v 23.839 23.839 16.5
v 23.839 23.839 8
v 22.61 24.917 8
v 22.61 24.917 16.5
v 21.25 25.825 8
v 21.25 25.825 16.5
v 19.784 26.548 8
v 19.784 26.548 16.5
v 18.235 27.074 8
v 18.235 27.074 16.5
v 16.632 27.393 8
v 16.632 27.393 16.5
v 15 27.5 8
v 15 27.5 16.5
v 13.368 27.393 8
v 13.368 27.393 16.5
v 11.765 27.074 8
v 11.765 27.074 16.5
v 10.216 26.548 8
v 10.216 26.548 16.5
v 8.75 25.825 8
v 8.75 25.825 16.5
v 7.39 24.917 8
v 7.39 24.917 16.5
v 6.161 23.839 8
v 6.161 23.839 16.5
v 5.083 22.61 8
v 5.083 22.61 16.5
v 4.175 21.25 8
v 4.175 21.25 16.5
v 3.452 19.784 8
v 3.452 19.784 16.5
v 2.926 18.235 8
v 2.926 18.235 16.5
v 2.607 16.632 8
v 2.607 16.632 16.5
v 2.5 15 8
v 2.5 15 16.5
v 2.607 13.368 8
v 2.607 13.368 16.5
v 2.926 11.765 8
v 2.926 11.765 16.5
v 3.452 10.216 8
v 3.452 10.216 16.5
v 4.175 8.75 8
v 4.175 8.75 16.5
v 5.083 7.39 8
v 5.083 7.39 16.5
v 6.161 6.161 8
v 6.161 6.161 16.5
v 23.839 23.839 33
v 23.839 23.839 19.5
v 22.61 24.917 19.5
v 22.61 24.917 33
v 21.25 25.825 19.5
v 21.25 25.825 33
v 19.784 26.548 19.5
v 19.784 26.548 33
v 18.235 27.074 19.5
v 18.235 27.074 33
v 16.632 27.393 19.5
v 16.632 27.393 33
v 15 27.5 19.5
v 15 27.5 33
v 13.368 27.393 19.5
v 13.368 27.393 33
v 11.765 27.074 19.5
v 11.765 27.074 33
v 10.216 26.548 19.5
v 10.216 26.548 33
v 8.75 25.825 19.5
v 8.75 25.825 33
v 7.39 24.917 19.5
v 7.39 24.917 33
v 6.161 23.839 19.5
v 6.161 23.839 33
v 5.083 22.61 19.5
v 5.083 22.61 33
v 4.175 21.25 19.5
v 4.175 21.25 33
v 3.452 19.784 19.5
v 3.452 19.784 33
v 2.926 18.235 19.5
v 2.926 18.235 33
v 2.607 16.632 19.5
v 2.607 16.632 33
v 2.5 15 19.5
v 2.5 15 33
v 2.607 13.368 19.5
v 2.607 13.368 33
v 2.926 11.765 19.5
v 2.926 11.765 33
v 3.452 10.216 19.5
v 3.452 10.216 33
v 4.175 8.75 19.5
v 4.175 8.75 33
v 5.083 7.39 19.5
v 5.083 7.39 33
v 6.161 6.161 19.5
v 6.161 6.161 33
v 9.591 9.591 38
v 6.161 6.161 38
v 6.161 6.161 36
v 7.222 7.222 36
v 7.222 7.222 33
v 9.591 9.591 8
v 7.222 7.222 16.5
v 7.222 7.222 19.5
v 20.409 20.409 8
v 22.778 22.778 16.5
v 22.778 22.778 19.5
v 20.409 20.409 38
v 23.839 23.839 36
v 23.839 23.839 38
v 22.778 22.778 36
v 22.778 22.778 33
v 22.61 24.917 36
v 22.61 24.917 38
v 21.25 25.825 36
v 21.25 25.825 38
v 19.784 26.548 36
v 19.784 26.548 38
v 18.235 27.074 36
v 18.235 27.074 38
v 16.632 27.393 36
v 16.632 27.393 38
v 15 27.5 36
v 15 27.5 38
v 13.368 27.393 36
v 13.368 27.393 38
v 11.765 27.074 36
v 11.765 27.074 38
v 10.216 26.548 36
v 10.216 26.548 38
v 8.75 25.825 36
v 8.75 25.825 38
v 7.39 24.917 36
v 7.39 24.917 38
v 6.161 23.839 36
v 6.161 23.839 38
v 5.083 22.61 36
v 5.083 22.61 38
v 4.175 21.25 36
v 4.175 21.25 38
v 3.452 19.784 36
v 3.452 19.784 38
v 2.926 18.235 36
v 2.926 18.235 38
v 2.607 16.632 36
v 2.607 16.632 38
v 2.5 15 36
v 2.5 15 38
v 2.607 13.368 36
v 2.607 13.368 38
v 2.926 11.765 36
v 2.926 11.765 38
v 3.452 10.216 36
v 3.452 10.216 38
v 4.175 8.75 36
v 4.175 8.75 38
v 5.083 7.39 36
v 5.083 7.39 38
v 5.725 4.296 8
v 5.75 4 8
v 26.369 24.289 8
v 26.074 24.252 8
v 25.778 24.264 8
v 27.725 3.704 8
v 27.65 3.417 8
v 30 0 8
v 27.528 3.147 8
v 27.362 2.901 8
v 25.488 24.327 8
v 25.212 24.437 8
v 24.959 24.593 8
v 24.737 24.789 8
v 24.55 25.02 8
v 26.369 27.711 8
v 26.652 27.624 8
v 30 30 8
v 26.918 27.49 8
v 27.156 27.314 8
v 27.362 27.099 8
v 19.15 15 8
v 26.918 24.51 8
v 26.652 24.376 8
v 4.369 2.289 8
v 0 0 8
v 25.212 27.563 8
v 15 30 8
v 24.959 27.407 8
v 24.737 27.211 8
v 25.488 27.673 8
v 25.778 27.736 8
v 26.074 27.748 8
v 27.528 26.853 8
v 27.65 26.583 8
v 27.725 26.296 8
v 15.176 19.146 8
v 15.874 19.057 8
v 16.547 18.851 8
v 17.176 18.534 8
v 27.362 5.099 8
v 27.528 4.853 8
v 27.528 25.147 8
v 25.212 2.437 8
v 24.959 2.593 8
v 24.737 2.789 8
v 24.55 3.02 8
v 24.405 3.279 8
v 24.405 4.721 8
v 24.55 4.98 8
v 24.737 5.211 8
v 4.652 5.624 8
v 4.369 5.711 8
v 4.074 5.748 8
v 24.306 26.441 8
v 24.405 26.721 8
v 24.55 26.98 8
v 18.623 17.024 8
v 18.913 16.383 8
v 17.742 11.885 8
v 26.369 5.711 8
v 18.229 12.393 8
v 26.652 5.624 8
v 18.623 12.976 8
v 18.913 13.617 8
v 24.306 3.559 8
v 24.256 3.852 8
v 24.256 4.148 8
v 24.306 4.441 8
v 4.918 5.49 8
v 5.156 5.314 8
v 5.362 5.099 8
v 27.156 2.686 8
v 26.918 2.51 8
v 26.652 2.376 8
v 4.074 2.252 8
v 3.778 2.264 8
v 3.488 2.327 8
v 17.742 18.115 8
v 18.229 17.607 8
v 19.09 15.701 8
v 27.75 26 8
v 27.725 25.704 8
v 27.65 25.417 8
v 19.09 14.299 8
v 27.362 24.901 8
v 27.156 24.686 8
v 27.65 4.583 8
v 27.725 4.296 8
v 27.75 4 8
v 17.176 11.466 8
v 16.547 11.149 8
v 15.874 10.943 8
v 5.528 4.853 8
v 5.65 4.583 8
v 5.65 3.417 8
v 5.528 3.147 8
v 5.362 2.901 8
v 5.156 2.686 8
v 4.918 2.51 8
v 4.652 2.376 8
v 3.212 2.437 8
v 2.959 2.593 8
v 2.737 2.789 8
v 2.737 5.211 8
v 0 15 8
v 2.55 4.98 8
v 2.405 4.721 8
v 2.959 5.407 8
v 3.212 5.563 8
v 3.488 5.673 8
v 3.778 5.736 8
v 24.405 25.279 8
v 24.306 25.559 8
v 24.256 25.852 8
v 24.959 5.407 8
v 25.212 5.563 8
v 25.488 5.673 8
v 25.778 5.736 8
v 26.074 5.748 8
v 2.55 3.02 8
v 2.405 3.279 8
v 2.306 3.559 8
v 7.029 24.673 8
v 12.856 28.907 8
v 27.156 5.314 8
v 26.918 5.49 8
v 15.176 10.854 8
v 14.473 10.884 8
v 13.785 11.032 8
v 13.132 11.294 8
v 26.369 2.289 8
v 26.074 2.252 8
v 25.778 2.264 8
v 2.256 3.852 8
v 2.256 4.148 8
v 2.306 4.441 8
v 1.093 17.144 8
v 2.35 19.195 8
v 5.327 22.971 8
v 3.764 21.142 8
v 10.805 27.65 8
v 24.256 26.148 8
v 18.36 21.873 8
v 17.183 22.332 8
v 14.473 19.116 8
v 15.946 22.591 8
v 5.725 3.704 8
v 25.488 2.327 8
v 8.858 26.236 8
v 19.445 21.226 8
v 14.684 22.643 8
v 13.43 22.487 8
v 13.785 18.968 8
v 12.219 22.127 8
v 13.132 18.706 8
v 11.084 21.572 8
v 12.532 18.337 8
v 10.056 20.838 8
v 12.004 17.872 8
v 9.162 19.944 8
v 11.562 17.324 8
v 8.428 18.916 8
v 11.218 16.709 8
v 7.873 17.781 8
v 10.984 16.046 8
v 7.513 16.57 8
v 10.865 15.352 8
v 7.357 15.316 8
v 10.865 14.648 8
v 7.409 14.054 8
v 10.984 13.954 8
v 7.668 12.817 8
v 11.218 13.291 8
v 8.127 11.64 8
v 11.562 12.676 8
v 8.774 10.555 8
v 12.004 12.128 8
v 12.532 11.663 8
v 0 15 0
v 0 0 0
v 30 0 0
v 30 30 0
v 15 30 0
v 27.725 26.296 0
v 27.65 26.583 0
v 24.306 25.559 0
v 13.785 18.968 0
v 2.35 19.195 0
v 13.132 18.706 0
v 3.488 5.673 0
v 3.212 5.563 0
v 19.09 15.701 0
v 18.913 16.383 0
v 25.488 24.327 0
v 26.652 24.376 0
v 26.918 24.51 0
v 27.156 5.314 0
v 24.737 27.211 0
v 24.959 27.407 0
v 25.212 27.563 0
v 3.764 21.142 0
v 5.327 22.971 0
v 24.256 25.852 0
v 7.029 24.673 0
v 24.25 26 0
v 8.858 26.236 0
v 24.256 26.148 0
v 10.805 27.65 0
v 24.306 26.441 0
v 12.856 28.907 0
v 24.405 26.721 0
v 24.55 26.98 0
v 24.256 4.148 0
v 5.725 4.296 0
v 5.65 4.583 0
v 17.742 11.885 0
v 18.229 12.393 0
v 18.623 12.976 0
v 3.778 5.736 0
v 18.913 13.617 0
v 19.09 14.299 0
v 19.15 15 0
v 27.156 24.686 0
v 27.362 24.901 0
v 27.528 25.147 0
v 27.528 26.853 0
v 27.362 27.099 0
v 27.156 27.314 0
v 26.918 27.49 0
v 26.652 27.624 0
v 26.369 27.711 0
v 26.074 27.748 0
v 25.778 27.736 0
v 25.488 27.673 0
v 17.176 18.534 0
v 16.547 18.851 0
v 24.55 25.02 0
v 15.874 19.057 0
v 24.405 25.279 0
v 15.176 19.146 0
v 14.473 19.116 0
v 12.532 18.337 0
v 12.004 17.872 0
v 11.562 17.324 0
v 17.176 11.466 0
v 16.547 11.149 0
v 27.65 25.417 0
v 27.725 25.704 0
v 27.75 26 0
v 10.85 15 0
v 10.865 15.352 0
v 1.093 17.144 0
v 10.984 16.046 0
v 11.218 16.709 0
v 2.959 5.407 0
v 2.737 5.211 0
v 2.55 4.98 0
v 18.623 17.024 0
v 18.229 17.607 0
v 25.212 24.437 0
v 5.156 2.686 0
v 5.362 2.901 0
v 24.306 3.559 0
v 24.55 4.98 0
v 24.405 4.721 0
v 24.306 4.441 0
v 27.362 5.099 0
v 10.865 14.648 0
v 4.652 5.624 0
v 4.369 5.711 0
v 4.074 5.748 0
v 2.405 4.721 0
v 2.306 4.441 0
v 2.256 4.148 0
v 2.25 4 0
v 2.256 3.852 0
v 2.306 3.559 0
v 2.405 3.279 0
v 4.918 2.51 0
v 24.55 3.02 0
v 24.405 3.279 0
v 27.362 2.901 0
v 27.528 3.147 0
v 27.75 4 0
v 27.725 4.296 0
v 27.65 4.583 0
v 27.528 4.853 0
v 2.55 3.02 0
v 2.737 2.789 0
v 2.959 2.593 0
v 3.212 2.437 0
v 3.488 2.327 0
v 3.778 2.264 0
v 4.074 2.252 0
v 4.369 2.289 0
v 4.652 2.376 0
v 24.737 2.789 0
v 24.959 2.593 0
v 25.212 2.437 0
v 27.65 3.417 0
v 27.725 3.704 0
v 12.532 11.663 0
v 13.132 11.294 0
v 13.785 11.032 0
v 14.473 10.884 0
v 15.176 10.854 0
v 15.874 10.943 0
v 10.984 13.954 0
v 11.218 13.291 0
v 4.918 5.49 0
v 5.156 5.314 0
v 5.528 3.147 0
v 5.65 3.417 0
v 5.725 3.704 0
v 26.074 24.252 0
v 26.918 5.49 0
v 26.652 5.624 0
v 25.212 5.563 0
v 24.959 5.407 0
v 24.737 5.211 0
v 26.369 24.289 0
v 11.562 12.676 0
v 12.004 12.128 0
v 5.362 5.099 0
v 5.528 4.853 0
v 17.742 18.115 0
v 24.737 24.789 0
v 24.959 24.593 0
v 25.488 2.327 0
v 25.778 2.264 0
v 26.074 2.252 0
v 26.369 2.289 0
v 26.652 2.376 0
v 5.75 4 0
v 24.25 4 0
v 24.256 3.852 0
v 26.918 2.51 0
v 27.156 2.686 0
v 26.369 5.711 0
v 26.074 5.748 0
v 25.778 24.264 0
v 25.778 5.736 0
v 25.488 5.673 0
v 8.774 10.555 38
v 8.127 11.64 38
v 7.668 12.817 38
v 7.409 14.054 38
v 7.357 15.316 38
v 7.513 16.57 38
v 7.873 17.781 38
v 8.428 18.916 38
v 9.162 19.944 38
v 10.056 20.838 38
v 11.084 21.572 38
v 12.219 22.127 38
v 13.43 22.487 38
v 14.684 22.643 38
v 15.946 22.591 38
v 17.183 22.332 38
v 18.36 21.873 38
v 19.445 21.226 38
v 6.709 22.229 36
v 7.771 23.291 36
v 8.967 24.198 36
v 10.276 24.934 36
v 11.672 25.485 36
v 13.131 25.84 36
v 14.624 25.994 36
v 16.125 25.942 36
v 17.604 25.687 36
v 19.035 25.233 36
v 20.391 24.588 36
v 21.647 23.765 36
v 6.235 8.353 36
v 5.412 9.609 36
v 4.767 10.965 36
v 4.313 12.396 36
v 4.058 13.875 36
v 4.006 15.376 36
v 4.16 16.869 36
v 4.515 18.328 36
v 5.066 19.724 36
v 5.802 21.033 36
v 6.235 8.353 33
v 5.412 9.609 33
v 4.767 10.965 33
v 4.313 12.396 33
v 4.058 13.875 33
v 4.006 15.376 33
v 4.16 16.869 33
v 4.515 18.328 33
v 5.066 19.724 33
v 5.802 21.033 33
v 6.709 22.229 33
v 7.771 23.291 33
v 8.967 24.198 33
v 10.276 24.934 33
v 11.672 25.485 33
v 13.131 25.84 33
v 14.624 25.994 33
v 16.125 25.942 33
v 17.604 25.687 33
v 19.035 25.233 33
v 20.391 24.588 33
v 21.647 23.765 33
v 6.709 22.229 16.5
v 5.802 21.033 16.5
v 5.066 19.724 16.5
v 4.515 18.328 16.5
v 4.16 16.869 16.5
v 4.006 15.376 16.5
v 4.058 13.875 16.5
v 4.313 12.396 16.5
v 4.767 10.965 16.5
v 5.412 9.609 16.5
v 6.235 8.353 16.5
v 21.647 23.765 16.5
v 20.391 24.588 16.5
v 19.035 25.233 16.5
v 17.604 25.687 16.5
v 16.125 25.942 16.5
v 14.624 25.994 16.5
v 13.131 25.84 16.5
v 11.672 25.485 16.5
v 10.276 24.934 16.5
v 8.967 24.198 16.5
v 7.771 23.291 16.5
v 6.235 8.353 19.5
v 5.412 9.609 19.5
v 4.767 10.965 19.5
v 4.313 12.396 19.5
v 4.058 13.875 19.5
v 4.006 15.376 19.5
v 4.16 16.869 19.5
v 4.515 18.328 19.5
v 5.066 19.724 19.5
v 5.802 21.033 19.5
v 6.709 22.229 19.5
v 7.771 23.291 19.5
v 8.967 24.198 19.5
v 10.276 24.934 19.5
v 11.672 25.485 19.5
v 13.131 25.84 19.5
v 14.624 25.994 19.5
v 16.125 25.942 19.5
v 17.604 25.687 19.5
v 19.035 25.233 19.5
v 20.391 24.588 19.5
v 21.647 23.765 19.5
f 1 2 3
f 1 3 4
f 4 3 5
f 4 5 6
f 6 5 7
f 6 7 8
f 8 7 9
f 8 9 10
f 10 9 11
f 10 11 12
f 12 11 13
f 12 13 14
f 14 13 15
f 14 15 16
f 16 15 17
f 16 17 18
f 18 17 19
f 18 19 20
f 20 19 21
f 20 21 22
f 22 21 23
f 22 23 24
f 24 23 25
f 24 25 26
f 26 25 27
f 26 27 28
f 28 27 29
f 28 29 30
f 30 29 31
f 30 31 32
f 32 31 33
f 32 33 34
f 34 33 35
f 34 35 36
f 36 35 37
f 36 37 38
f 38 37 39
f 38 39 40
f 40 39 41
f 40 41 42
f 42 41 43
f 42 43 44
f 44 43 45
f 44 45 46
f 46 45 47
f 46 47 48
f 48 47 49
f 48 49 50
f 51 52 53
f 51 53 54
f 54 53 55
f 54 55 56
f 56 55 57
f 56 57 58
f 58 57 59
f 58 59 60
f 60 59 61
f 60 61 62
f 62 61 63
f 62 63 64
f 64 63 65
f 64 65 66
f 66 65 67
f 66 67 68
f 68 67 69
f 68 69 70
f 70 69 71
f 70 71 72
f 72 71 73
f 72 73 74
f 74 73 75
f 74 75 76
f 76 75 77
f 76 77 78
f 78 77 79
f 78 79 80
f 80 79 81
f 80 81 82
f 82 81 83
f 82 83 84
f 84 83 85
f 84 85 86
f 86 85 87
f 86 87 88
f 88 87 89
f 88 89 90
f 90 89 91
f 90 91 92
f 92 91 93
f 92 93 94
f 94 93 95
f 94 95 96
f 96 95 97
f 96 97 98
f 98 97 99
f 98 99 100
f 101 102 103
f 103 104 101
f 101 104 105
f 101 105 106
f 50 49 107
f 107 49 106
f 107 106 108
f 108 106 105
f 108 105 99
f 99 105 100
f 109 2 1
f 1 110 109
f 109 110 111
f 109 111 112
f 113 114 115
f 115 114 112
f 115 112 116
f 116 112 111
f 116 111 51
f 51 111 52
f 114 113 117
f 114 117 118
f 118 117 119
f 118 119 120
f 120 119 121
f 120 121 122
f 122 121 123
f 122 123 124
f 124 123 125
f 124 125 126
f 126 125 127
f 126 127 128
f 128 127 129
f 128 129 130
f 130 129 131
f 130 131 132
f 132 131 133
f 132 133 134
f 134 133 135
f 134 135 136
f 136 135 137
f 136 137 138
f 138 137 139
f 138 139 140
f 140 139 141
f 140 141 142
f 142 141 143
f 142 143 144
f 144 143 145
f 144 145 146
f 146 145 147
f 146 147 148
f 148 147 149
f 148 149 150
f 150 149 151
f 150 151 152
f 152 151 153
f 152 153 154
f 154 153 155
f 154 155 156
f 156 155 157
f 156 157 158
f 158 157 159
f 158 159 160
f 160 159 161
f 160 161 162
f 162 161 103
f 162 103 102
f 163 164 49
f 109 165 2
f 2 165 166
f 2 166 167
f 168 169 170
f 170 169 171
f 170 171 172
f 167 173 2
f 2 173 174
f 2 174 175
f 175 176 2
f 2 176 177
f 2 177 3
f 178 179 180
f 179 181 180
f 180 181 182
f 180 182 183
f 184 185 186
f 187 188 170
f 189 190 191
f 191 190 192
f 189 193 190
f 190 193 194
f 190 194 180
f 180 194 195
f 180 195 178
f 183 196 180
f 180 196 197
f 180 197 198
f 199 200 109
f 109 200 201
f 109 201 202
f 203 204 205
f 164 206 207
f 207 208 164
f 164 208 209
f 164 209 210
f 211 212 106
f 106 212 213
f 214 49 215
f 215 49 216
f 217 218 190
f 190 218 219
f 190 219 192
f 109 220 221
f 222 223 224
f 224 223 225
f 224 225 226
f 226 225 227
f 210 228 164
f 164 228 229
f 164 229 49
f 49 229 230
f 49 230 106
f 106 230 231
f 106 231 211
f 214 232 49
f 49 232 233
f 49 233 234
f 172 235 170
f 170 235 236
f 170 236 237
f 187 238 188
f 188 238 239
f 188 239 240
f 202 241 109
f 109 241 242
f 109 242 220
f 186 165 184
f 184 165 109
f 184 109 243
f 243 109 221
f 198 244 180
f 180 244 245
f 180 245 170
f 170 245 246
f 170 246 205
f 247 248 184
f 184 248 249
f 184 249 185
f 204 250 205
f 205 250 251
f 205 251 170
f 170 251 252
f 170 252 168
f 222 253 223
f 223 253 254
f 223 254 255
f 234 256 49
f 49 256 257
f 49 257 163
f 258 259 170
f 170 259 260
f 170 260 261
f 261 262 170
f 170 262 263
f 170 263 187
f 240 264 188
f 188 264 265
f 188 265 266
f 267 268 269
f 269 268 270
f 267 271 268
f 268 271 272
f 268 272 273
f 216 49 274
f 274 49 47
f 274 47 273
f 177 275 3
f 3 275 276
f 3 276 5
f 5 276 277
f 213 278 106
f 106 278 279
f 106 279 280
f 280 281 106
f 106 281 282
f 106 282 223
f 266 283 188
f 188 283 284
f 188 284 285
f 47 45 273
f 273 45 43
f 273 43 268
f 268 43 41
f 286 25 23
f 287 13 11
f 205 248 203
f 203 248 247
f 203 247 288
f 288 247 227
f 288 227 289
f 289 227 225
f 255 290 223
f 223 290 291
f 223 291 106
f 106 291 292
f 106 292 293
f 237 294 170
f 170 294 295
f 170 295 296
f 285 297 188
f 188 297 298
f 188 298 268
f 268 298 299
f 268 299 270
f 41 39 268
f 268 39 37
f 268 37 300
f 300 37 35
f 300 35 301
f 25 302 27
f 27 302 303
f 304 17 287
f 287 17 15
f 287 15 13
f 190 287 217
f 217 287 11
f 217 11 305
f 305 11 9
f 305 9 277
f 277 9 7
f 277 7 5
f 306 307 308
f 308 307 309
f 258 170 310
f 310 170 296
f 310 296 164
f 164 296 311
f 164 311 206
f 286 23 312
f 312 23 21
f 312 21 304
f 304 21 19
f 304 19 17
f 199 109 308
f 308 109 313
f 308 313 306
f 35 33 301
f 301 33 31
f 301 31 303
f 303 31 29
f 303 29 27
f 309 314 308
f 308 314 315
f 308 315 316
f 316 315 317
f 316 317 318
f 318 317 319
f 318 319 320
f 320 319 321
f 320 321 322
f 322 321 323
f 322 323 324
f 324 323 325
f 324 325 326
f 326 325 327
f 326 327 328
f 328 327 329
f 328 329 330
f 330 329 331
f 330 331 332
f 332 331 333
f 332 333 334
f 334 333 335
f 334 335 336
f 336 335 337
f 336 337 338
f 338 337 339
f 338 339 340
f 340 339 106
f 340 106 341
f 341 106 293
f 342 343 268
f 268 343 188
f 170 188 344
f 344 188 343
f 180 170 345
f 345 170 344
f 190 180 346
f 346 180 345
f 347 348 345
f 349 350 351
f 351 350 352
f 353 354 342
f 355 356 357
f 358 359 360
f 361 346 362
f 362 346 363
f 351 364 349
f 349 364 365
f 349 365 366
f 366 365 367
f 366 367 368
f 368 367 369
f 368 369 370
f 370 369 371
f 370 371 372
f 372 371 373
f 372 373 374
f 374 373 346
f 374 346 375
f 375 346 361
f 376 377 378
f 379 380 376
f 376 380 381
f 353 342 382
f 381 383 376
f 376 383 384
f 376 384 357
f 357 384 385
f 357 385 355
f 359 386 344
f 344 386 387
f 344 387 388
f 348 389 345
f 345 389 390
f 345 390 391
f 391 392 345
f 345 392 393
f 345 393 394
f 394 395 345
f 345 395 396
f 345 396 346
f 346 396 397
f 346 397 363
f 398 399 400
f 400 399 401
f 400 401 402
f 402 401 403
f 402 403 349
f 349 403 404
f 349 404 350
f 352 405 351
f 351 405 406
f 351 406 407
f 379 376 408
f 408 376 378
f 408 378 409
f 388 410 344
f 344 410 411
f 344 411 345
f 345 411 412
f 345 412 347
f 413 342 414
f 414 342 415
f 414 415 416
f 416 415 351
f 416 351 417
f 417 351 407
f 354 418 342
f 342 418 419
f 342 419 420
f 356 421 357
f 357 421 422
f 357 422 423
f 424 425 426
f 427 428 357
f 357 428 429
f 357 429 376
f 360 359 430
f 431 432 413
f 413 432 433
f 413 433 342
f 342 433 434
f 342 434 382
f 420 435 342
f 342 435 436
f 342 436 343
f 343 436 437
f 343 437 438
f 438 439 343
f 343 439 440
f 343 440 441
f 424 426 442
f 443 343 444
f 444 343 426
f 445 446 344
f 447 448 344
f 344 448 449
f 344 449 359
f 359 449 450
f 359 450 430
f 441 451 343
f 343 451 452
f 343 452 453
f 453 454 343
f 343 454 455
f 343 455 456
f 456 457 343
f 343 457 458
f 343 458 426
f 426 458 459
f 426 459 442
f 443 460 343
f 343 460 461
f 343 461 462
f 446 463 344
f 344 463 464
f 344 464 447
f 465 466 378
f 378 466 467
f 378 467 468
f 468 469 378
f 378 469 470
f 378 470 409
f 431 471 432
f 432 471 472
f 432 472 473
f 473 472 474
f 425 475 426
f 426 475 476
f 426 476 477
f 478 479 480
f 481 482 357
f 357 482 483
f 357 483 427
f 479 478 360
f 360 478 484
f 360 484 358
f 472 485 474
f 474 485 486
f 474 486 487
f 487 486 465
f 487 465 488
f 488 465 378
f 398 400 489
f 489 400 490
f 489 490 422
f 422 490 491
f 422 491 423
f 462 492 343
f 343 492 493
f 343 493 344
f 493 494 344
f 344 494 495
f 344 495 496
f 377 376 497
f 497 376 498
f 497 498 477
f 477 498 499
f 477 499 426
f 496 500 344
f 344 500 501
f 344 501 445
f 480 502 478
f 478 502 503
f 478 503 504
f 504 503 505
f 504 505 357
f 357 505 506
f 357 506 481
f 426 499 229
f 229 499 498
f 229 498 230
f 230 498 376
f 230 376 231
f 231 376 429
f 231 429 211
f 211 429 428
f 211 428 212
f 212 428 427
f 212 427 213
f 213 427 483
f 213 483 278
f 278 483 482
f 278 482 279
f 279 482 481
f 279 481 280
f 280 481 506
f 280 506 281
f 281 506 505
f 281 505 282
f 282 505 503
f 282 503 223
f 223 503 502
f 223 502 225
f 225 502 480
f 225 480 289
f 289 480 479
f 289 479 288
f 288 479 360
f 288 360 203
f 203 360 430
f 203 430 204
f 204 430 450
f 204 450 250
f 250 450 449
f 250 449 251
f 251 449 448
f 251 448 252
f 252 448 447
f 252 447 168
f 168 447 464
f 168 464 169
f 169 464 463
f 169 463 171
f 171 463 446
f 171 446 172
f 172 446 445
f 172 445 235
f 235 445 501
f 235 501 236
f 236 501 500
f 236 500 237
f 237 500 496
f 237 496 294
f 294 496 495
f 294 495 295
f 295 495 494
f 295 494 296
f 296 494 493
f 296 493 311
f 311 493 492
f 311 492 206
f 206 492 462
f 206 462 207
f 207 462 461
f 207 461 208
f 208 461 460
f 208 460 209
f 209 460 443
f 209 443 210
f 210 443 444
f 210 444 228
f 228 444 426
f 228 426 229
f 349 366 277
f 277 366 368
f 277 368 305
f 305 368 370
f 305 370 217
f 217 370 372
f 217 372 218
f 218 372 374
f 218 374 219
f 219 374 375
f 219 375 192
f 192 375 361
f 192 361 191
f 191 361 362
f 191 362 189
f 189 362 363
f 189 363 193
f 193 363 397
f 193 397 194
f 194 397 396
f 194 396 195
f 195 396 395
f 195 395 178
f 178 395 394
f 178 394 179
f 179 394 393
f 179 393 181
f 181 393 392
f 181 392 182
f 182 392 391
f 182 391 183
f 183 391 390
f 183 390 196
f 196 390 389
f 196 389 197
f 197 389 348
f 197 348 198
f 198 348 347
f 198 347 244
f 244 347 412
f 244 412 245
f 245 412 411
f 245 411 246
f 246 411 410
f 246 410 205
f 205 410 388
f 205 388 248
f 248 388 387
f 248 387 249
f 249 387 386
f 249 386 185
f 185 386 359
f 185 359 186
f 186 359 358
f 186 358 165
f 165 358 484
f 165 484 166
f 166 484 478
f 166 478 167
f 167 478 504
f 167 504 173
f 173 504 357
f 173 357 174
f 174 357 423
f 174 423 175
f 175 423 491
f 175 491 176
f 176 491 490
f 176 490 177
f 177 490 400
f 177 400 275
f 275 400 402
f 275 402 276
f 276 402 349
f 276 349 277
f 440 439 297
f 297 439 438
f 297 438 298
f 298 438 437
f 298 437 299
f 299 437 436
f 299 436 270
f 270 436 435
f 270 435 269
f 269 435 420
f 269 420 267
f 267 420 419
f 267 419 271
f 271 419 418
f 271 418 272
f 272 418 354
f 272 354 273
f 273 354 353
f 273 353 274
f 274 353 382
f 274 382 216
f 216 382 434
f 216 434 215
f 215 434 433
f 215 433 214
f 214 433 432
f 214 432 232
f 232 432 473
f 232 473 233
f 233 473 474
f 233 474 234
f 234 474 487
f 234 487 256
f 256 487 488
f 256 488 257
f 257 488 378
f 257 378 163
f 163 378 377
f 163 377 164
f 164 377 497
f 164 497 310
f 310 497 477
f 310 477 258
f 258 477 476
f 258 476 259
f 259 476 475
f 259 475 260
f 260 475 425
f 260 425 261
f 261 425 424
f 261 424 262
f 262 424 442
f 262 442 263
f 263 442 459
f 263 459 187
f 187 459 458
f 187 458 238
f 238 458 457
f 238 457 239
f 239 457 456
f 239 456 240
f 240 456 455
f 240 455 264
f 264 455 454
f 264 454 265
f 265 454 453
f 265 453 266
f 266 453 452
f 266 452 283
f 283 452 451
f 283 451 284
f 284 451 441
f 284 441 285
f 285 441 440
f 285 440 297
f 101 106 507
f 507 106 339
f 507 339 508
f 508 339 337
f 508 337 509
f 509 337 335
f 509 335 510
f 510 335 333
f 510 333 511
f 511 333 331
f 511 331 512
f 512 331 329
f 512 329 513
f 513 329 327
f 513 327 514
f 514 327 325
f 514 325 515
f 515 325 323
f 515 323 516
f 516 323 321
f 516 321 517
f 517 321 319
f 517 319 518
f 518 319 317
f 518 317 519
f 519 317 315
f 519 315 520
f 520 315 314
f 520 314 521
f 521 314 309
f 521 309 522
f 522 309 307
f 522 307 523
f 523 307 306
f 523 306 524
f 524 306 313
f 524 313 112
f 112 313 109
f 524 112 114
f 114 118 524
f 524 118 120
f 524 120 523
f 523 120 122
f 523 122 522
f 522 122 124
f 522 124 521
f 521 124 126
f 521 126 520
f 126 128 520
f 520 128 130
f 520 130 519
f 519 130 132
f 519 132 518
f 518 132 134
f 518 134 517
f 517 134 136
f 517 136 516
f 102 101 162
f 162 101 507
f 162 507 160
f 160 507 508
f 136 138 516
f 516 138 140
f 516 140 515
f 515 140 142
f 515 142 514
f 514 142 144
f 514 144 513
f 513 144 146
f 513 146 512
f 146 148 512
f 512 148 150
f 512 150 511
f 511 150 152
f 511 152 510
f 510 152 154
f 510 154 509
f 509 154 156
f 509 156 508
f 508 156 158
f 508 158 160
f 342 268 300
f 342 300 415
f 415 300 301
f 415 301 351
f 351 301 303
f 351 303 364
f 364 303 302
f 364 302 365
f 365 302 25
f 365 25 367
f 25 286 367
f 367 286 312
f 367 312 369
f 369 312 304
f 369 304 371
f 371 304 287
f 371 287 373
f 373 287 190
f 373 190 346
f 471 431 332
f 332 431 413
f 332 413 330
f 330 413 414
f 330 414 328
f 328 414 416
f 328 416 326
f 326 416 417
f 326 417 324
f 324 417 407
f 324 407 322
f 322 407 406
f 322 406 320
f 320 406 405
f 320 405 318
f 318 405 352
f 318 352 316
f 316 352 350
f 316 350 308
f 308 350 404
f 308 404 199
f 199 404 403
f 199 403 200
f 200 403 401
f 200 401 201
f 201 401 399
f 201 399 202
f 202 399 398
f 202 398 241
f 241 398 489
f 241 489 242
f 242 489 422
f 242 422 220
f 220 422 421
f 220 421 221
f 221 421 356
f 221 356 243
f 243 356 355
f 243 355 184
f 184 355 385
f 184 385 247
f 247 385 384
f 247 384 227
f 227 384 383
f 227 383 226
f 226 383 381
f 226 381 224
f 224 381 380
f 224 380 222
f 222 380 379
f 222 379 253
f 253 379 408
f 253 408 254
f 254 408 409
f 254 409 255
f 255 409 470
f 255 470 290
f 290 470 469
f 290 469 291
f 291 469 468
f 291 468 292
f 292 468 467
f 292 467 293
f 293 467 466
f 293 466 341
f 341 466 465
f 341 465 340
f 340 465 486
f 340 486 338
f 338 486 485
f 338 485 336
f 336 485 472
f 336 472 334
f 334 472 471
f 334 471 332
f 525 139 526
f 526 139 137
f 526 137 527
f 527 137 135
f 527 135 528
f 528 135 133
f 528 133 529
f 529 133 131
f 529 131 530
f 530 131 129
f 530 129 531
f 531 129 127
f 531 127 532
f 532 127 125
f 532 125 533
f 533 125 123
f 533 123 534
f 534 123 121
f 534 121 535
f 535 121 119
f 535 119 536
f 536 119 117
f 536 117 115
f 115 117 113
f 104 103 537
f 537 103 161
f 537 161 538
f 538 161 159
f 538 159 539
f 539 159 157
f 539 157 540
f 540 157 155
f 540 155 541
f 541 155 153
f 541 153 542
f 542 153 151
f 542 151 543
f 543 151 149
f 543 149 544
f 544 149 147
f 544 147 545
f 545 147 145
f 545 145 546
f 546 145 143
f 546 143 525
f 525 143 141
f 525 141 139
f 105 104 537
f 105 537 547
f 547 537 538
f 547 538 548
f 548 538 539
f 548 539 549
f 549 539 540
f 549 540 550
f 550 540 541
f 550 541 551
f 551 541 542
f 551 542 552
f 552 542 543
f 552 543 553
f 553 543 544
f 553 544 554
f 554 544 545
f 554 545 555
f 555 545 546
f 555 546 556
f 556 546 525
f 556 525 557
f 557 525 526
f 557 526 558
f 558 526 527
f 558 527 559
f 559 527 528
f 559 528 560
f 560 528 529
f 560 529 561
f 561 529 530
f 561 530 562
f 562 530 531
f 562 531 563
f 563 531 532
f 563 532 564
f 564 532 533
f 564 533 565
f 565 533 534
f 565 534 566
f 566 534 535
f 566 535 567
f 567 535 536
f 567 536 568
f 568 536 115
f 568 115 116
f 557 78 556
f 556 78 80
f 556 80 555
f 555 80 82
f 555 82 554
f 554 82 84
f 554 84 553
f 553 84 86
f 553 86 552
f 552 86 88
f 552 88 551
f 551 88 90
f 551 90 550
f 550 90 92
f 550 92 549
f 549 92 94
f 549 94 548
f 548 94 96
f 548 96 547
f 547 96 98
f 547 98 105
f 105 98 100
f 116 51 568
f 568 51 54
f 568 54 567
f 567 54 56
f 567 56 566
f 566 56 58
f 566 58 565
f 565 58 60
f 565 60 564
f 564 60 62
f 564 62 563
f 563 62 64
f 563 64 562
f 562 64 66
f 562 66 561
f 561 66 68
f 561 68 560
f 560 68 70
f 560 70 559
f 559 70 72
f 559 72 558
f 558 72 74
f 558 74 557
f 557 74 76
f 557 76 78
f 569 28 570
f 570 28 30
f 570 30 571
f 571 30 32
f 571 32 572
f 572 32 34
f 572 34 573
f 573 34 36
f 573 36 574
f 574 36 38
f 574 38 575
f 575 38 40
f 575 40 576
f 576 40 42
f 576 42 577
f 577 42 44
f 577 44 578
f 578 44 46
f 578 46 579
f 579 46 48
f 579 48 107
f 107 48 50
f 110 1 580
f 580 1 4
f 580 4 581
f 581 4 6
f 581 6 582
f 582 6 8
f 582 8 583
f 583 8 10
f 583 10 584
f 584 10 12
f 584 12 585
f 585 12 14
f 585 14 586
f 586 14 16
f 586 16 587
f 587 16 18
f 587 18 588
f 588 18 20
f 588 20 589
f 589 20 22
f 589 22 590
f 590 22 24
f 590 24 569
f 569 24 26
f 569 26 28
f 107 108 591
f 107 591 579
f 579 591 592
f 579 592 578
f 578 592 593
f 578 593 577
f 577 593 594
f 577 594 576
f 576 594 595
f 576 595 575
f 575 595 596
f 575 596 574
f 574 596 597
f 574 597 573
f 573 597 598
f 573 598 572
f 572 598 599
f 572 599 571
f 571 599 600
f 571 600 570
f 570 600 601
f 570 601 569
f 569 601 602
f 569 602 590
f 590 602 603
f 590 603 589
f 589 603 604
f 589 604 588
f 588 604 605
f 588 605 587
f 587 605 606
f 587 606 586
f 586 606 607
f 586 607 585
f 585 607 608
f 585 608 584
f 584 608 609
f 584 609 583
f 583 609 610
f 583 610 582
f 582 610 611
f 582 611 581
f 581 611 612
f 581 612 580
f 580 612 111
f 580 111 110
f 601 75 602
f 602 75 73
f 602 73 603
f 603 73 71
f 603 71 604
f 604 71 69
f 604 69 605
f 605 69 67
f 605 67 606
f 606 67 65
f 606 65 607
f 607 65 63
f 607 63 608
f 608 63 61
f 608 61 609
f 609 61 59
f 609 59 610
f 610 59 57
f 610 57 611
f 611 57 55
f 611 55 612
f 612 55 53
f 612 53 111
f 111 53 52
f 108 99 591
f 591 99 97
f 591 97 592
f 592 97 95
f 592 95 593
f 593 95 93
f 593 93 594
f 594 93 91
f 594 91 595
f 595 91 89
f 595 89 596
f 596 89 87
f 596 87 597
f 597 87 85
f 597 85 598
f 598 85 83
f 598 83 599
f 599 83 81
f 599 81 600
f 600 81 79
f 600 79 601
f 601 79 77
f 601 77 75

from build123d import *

# Parameters (mm, degrees)
IZIM1_W                     = 30
IZIM1_H                     = 30
Y_KSEKLIK_EKSTR_ZYON1_DEPTH = 8
IZIM3_R                     = 1.75
KES_EKSTR_ZYON1_DEPTH       = 30
Y_KSEKLIK_EKSTR_ZYON3_DEPTH = 30
KES_EKSTR_ZYON2_DEPTH       = 30
IZIM5_R                     = 4.15
KES_EKSTR_ZYON3_DEPTH       = 30
IZIM6_W                     = 3
IZIM6_H                     = 1.5


with BuildPart() as part:
    # Çizim1 → Yükseklik-Ekstrüzyon1 (new body)
    with BuildSketch(Plane.XY):
        with Locations((15, 15)):
            Rectangle(IZIM1_W, IZIM1_H)
    extrude(amount=Y_KSEKLIK_EKSTR_ZYON1_DEPTH)

    # Çizim3 → Kes-Ekstrüzyon1 (cut)
    with BuildSketch(Plane.XY.offset(8)):
        with Locations((4, 26)):
            Circle(IZIM3_R)
        with Locations((4, 4)):
            Circle(IZIM3_R)
        with Locations((26, 26)):
            Circle(IZIM3_R)
        with Locations((26, 4)):
            Circle(IZIM3_R)
    extrude(amount=-KES_EKSTR_ZYON1_DEPTH, mode=Mode.SUBTRACT)

    # Çizim2 → Yükseklik-Ekstrüzyon3 (add)
    with BuildSketch(Plane.XY.offset(8)):
        with BuildLine():
            Line((6.161165235, 6.161165235), (9.590633124, 9.590633124))
            ThreePointArc((9.590633124, 9.590633124), (9.590633124, 20.409366876), (20.409366876, 20.409366876))
            Line((20.409366876, 20.409366876), (23.838834765, 23.838834765))
            ThreePointArc((23.838834765, 23.838834765), (6.161165235, 23.838834765), (6.161165235, 6.161165235))
        make_face()
    extrude(amount=Y_KSEKLIK_EKSTR_ZYON3_DEPTH)

    # Çizim4 → Kes-Ekstrüzyon2 (cut)
    with BuildSketch(Plane.XY.offset(8)):
        with BuildLine():
            Line((0, 15), (0, 30))
            Line((0, 30), (15, 30))
            ThreePointArc((15, 30), (6.161165235, 23.838834765), (0, 15))
        make_face()
    extrude(amount=-KES_EKSTR_ZYON2_DEPTH, mode=Mode.SUBTRACT)

    # Çizim5 → Kes-Ekstrüzyon3 (cut)
    with BuildSketch(Plane.XY.offset(8)):
        with Locations((15, 15)):
            Circle(IZIM5_R)
    extrude(amount=-KES_EKSTR_ZYON3_DEPTH, mode=Mode.SUBTRACT)

    # Çizim6 → Kes-Döndür1 (revolve, cut)
    with BuildSketch(Plane(origin=(0, 0, 0), x_dir=(0, 0, -1), z_dir=(0.7071067811865472, -0.7071067811865478, 0))):
        with Locations((-34.5, 32.963203436)):
            Rectangle(IZIM6_W, IZIM6_H)
        with Locations((-18, 32.963203436)):
            Rectangle(IZIM6_W, IZIM6_H)
    revolve(axis=Axis((15, 15, 42.321242124), (0, 0, -1)), mode=Mode.SUBTRACT)


solid = part.part
